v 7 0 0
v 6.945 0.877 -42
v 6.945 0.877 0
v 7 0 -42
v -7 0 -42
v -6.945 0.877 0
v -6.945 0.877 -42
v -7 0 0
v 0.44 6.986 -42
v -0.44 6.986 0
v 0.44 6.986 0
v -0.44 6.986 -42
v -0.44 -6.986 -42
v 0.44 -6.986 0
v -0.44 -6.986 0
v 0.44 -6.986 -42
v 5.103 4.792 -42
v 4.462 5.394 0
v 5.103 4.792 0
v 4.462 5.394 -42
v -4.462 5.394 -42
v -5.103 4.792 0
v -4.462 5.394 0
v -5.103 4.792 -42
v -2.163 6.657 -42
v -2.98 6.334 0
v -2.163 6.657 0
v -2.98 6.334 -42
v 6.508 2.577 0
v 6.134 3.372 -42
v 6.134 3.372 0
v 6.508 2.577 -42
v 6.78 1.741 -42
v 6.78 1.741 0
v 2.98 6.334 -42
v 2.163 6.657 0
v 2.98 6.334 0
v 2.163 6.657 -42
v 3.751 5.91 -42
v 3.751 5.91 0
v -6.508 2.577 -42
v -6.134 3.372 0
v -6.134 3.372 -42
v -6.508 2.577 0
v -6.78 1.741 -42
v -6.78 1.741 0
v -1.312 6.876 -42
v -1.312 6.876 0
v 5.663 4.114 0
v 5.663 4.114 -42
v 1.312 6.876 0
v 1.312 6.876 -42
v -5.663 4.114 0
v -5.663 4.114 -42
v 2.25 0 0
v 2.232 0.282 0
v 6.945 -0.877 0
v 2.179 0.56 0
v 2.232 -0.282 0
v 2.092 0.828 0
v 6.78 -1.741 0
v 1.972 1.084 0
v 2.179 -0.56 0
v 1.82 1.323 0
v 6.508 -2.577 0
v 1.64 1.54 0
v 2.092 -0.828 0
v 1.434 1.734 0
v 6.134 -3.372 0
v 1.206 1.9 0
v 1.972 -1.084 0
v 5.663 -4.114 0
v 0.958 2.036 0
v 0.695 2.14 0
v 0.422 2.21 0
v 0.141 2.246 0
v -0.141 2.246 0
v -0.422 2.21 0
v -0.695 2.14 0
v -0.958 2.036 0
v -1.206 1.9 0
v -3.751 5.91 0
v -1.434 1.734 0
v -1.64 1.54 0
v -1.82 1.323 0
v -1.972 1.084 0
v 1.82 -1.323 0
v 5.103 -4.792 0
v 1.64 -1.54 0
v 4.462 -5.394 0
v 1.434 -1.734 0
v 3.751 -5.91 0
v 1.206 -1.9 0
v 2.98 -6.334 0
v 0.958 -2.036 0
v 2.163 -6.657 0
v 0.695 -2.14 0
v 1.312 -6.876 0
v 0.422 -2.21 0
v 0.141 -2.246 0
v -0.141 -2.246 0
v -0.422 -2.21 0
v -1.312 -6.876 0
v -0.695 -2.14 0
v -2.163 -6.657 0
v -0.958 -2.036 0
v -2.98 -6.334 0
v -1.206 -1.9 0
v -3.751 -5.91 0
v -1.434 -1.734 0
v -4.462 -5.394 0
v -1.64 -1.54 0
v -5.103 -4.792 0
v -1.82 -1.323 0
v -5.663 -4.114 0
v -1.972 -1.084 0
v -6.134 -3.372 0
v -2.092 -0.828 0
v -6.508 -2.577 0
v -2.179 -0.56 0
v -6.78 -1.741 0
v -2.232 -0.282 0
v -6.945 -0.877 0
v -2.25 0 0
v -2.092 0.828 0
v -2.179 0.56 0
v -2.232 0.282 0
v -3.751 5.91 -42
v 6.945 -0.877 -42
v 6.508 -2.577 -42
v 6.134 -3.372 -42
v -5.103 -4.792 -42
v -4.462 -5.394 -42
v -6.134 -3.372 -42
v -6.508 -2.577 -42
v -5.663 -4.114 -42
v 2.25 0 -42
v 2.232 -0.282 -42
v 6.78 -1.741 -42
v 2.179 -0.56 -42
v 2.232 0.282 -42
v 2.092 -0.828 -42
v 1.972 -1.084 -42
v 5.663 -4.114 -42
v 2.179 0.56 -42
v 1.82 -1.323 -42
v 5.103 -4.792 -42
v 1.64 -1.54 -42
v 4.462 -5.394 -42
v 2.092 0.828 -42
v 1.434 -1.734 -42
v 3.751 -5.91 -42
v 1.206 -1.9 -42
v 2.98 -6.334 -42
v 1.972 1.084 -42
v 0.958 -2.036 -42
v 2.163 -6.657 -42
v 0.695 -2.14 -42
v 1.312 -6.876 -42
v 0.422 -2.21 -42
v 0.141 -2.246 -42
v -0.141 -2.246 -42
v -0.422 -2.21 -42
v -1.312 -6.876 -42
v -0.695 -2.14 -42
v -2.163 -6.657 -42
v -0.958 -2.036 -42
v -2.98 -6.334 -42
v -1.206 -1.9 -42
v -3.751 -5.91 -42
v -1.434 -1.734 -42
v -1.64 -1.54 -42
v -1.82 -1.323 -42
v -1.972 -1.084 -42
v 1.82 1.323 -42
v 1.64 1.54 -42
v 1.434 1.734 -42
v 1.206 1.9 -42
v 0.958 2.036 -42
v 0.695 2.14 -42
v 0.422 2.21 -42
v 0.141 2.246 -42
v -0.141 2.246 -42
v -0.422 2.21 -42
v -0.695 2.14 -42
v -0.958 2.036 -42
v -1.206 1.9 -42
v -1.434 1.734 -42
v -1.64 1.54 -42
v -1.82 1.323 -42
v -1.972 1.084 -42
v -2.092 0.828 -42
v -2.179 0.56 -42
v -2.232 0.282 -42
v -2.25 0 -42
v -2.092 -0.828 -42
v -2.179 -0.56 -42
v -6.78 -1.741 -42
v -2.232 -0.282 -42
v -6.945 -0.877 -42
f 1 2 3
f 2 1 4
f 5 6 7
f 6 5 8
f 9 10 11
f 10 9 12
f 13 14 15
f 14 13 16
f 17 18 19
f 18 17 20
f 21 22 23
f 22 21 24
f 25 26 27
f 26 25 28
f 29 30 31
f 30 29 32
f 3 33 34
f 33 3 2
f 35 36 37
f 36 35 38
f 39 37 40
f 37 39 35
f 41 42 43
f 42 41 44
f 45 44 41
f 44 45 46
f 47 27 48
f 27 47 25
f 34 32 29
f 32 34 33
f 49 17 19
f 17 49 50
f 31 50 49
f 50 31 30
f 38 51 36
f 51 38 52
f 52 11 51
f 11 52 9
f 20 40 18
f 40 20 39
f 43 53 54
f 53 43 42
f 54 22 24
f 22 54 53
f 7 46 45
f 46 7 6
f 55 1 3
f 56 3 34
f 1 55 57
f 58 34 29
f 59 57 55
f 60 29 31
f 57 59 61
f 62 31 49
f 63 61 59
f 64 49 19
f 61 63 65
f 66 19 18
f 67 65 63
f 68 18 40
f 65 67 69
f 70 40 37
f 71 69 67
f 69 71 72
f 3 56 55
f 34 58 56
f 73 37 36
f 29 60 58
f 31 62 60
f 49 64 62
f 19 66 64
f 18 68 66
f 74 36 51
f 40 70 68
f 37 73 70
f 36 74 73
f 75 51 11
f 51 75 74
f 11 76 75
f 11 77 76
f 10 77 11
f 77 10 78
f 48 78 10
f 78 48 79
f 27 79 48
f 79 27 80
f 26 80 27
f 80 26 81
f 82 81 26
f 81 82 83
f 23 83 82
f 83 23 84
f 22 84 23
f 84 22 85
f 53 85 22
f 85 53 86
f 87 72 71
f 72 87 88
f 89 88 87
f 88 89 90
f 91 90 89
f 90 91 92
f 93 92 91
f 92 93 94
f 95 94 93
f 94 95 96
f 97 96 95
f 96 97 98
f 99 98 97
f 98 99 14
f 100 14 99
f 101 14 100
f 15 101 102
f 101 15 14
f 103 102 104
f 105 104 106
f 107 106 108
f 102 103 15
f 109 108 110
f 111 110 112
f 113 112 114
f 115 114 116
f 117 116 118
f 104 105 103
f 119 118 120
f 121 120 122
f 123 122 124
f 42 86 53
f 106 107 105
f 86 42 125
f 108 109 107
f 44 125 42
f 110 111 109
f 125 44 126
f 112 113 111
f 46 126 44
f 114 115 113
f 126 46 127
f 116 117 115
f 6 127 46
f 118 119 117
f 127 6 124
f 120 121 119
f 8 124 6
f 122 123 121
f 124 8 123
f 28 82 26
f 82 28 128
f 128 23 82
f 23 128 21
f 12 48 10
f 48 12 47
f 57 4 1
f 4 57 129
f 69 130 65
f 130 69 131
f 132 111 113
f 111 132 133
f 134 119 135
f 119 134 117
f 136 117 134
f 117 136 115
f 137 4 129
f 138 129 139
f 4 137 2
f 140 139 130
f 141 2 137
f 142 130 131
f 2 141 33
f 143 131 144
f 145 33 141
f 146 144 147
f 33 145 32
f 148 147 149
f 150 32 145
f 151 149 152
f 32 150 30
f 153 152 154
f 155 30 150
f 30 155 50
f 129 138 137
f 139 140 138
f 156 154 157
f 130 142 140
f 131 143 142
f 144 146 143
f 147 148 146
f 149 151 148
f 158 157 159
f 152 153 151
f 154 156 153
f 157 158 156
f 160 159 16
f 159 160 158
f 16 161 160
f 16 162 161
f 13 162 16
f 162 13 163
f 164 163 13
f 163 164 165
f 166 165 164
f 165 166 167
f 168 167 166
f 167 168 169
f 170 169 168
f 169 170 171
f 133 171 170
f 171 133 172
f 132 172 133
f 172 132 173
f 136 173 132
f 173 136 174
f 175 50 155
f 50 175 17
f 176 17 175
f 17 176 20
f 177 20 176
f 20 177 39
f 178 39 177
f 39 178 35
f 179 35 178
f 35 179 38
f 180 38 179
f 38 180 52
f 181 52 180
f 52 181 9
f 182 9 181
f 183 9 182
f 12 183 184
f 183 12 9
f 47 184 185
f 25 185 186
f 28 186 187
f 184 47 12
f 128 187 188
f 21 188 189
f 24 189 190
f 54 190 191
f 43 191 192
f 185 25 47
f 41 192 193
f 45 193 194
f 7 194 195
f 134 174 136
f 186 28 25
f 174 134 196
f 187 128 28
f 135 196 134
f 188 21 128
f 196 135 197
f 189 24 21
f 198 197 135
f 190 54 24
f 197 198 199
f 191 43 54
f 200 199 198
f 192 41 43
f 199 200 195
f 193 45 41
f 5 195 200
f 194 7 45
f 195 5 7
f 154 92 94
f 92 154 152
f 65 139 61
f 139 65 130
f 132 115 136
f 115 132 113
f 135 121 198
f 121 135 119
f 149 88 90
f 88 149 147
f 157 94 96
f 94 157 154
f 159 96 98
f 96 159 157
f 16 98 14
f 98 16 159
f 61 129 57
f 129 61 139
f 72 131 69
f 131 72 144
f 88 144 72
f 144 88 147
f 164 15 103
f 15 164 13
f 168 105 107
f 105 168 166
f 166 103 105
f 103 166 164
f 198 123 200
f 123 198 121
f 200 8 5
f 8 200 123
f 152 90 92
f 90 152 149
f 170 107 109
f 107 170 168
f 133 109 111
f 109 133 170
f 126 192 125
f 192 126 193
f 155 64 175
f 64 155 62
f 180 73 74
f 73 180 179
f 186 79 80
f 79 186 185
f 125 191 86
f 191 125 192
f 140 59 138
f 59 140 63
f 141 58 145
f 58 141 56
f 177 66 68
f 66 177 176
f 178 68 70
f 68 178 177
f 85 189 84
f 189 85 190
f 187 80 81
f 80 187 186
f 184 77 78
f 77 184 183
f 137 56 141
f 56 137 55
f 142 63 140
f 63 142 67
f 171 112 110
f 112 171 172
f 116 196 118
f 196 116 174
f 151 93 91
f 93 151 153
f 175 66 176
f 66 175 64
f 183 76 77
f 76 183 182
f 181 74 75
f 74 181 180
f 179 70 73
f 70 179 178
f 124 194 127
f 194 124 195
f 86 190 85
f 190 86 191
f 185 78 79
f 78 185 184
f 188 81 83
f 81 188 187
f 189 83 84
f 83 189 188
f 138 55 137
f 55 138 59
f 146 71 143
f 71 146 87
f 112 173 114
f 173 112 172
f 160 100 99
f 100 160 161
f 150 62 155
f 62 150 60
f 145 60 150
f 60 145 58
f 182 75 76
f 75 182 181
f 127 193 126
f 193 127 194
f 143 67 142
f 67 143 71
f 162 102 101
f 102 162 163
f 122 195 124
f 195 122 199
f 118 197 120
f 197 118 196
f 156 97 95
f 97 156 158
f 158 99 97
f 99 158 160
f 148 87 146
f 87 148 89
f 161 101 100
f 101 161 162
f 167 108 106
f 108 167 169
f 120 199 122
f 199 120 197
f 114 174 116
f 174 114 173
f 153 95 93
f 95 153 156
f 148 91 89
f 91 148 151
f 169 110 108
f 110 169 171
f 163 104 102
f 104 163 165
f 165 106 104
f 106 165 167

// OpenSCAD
$fn = 50;


difference() {
	union() {
		translate(v = [0, 0, -42.0000000000]) {
			cylinder(h = 42, r = 7.0000000000);
		}
		cylinder(h = 0, r = 17.0000000000);
	}
	union() {
		#translate(v = [0, 0, -42]) {
			cylinder(h = 42, r = 2.2500000000);
		}
	}
}
